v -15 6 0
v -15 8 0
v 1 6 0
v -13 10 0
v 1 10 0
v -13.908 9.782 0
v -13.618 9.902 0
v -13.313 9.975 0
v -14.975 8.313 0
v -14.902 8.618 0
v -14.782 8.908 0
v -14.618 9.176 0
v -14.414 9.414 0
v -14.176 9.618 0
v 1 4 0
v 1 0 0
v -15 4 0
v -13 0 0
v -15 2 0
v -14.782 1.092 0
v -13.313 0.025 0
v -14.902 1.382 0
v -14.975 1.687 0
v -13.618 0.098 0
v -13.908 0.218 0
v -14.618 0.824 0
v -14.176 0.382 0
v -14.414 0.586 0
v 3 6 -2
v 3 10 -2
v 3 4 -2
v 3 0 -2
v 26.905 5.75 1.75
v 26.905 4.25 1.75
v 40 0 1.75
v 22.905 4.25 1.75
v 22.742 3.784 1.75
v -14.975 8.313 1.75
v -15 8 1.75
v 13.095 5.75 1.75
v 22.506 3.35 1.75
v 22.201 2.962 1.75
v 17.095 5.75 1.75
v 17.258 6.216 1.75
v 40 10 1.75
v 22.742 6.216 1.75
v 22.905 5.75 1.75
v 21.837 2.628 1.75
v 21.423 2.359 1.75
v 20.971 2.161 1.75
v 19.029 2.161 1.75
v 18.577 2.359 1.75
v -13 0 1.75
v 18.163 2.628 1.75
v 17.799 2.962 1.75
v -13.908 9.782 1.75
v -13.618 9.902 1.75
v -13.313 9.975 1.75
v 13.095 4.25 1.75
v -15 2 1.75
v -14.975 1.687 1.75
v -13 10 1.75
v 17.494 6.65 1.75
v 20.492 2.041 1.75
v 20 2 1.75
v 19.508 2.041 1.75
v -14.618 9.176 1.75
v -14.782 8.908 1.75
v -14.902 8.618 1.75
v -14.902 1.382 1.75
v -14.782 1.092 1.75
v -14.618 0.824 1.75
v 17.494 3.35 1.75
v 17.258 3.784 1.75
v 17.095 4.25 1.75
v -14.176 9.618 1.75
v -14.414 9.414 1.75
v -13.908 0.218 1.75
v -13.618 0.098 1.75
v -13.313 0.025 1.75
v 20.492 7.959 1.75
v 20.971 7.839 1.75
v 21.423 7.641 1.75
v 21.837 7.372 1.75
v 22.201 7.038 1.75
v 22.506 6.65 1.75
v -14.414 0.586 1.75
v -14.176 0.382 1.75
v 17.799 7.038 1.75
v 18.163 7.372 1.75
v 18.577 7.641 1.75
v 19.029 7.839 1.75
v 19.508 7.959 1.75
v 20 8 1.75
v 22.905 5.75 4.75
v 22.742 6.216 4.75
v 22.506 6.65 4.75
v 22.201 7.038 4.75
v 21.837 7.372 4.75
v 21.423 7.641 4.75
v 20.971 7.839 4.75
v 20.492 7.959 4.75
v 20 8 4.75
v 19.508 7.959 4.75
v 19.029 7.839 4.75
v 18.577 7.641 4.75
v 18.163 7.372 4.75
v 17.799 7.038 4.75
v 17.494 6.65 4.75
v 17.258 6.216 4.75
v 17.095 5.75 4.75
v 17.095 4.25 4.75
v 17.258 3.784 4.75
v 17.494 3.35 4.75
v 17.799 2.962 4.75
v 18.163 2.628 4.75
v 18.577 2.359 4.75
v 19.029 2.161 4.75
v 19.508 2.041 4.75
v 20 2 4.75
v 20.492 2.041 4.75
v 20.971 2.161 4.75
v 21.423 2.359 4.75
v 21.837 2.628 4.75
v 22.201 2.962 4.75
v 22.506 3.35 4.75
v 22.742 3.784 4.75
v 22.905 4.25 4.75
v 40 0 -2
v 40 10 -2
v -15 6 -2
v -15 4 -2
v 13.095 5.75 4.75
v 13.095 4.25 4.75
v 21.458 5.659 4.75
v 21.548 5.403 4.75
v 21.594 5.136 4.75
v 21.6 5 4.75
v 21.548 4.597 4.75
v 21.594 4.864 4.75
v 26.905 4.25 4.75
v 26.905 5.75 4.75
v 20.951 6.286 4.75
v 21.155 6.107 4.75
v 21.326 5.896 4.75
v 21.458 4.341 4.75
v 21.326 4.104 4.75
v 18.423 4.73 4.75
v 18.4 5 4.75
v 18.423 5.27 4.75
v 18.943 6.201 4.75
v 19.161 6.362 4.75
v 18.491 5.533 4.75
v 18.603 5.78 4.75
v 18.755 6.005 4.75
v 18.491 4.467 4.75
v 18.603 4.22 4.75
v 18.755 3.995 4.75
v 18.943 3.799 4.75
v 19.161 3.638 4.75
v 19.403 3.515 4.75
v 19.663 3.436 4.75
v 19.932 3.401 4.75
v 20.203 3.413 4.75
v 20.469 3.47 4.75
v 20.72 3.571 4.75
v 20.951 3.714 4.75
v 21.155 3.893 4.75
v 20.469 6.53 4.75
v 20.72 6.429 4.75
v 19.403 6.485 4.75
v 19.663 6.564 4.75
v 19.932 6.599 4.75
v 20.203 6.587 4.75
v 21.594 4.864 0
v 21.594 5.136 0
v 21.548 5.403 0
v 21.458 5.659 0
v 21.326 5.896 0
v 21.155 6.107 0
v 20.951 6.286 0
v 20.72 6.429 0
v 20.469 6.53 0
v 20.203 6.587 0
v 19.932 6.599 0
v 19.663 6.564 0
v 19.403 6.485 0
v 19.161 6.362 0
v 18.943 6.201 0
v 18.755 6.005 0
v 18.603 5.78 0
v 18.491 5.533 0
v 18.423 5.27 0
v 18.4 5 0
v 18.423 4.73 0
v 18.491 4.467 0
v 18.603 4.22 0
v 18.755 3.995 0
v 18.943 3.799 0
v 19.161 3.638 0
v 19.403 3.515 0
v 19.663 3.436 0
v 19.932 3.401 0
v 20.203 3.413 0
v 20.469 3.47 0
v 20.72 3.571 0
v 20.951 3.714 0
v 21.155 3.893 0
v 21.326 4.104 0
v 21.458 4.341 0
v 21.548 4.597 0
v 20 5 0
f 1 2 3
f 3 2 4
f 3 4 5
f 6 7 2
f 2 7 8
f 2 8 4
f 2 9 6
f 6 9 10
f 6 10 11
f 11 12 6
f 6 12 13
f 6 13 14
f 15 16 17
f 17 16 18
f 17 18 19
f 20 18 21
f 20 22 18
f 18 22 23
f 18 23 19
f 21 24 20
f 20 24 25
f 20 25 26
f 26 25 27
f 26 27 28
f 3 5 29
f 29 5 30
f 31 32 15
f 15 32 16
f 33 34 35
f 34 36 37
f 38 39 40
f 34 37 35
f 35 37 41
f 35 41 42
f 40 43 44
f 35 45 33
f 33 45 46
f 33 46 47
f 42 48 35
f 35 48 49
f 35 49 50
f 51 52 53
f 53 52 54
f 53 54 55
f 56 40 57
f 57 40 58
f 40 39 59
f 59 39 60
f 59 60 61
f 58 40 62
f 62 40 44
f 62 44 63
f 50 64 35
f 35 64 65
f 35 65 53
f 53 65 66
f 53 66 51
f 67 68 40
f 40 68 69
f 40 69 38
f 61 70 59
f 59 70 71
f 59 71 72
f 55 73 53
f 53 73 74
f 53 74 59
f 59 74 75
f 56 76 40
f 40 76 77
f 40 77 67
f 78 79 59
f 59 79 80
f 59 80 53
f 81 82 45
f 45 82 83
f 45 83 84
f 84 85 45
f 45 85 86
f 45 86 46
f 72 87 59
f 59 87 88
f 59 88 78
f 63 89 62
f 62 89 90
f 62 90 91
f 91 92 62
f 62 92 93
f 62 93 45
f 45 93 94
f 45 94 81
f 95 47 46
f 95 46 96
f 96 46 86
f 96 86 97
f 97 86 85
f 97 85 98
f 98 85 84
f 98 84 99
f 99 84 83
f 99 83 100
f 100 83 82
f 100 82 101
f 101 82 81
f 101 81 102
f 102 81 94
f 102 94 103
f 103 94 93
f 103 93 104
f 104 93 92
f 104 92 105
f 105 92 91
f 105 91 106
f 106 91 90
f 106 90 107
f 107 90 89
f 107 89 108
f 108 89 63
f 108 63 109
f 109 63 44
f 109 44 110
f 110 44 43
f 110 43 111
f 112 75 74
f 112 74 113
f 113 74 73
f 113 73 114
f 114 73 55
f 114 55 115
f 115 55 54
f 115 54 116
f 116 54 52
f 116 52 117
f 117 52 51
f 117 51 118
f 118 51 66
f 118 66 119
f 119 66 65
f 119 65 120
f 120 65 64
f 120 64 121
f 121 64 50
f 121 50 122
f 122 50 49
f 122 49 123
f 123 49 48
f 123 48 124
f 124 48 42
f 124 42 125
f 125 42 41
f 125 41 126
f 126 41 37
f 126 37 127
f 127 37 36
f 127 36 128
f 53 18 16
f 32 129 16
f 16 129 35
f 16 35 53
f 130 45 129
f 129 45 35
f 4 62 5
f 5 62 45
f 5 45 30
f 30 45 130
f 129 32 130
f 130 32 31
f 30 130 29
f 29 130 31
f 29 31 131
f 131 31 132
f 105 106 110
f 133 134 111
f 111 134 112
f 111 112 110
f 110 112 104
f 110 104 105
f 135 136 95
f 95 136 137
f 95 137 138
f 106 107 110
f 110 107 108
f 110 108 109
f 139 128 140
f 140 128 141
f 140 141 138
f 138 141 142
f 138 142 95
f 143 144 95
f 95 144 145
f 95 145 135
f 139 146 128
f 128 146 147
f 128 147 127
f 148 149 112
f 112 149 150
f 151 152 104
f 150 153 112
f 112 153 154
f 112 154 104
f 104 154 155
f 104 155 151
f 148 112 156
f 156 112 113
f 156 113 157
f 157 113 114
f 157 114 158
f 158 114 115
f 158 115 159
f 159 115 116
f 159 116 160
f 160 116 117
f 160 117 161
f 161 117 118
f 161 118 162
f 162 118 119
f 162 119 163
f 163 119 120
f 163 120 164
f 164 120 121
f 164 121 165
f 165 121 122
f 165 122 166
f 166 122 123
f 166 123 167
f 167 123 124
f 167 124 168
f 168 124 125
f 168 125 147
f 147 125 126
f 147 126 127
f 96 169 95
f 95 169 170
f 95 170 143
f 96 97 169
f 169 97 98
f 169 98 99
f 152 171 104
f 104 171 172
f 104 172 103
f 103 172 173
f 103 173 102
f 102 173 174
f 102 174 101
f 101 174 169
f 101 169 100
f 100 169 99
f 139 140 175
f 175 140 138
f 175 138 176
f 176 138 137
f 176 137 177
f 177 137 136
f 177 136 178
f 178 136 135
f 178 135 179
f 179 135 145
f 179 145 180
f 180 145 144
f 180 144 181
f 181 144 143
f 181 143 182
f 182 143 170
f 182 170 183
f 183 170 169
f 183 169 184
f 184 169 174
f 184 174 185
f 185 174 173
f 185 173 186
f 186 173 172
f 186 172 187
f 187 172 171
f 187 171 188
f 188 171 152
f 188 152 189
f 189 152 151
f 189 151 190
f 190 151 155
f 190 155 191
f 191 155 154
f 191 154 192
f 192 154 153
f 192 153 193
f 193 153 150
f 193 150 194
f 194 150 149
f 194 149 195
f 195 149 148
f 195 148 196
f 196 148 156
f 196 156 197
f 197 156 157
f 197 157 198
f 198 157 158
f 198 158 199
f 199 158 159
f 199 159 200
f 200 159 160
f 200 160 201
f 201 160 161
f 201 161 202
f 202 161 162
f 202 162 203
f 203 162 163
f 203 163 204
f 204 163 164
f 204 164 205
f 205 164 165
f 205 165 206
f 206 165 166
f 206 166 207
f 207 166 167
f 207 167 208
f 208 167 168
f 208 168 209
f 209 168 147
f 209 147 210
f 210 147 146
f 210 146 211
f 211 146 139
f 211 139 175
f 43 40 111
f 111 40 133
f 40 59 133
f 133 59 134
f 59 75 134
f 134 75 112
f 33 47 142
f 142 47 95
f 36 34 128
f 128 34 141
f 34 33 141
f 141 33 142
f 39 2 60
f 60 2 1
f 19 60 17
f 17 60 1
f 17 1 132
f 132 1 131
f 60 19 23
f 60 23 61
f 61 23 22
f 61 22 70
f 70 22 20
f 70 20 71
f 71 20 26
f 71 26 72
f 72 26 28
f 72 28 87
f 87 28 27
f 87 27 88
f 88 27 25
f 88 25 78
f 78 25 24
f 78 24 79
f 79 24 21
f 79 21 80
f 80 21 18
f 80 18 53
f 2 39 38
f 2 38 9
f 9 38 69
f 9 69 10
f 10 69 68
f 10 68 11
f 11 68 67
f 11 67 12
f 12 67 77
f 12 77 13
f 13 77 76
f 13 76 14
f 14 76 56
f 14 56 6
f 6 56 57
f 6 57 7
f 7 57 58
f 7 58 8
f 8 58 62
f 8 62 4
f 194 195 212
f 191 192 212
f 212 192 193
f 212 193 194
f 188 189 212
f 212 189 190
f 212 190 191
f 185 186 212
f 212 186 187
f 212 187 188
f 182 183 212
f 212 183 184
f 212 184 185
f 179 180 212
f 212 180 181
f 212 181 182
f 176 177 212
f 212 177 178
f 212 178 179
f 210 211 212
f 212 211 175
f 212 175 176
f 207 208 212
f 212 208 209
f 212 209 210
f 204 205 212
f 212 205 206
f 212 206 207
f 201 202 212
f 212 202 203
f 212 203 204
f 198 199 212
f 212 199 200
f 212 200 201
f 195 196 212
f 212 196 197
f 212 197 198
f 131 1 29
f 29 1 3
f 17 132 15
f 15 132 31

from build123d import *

# Parameters (mm, degrees)
SKETCH_1_W          = 40
SKETCH_1_H          = 10
EXTRUDE_1_DEPTH     = 1.75
SKETCH_3_W          = 4
SKETCH_3_H          = 10
EXTRUDE_3_DEPTH     = 2
SKETCH_4_W          = 15
SKETCH_4_H          = 1.5
SKETCH_4_W_2        = 3
SKETCH_4_H_2        = 3.5
EXTRUDE_4_DEPTH     = 2
CHAMFER_1_SIZE      = 1
SKETCH_6_R          = 3
SKETCH_6_R_2        = 1.6
EXTRUDE_5_DEPTH     = 3
SKETCH_7_W          = 1.75
SKETCH_7_H          = 10
EXTRUDE_6_DEPTH     = 10
SKETCH_8_W          = 4
SKETCH_8_H          = 1.5
EXTRUDE_7_DEPTH     = 3
SKETCH_9_W          = 33
SKETCH_9_H          = 10
EXTRUDE_8_DEPTH     = 2
CHAMFER_2_SIZE      = 3
SKETCH_10_W         = 1.75
SKETCH_10_H         = 10
EXTRUDE_9_DEPTH     = 5
FILLET_1_R          = 2
CUT_EXTRUDE_START   = -1.75
SKETCH_11_R         = 1.6
CUT_EXTRUDE_1_DEPTH = 1.75
SKETCH_12_W         = 18
SKETCH_12_H         = 2
EXTRUDE_10_DEPTH    = 2


# Some blends are built 0.0001 mm under size
with BuildPart() as part:
    # 草图1 → 凸台-拉伸1 (new body)
    with BuildSketch(Plane.XY):
        with Locations((20, 5)):
            Rectangle(SKETCH_1_W, SKETCH_1_H)
    extrude(amount=EXTRUDE_1_DEPTH)

    # 草图3 → 凸台-拉伸3 (add)
    with BuildSketch(Plane(origin=(0, 0, 0), x_dir=(-1, 0, 0), z_dir=(0, 0, -1))):
        with Locations((-38, 5)):
            Rectangle(SKETCH_3_W, SKETCH_3_H)
    extrude(amount=EXTRUDE_3_DEPTH)

    # 草图4 → 凸台-拉伸4 (add)
    with BuildSketch(Plane(origin=(0, 0, 0), x_dir=(-1, 0, 0), z_dir=(0, 0, -1))):
        with Locations((-28.5, 5.75)):
            Rectangle(SKETCH_4_W, SKETCH_4_H)
        with Locations((-28.5, 4.25)):
            Rectangle(SKETCH_4_W, SKETCH_4_H)
        with Locations((-19.5, 5.75)):
            Rectangle(SKETCH_4_W_2, SKETCH_4_H)
        with Locations((-19.5, 4.25)):
            Rectangle(SKETCH_4_W_2, SKETCH_4_H)
        with Locations((-19.5, 8.25)):
            Rectangle(SKETCH_4_W_2, SKETCH_4_H_2)
        with Locations((-19.5, 1.75)):
            Rectangle(SKETCH_4_W_2, SKETCH_4_H_2)
        with Locations((-10.5, 5.75)):
            Rectangle(SKETCH_4_W, SKETCH_4_H)
        with Locations((-10.5, 4.25)):
            Rectangle(SKETCH_4_W, SKETCH_4_H)
        with Locations((-1.5, 5.75)):
            Rectangle(SKETCH_4_W_2, SKETCH_4_H)
        with Locations((-1.5, 4.25)):
            Rectangle(SKETCH_4_W_2, SKETCH_4_H)
        with Locations((-1.5, 8.25)):
            Rectangle(SKETCH_4_W_2, SKETCH_4_H_2)
        with Locations((-1.5, 1.75)):
            Rectangle(SKETCH_4_W_2, SKETCH_4_H_2)
    extrude(amount=EXTRUDE_4_DEPTH)

    # 倒角1
    chamfer_1_edges = [part.edges().sort_by_distance(p)[0] for p in [
        (10.5, 3.5, 0),
        (28.5, 3.5, 0),
    ]]
    chamfer(chamfer_1_edges, length=CHAMFER_1_SIZE)
    chamfer_1_2_edges = [part.edges().sort_by_distance(p)[0] for p in [
        (10.5, 3.5, -2),
        (28.5, 3.5, -2),
    ]]
    chamfer(chamfer_1_2_edges, length=CHAMFER_1_SIZE - 0.0001)  # a hair under: the kernel refuses the full size

    # 草图6 → 凸台-拉伸5 (add)
    with BuildSketch(Plane.XY.offset(1.75)):
        with Locations(Location((20, 5, 0), (0, 0, 180))):
            Circle(SKETCH_6_R)
        with Locations((20, 5)):
            Circle(SKETCH_6_R_2, mode=Mode.SUBTRACT)
    extrude(amount=EXTRUDE_5_DEPTH)

    # 草图7 → 凸台-拉伸6 (add)
    with BuildSketch(Plane.ZY):
        with Locations((0.875, 5)):
            Rectangle(SKETCH_7_W, SKETCH_7_H)
    extrude(amount=EXTRUDE_6_DEPTH)

    # 草图8 → 凸台-拉伸7 (add)
    with BuildSketch(Plane.XY.offset(1.75)):
        with Locations((15.09526249, 5)):
            Rectangle(SKETCH_8_W, SKETCH_8_H)
        with Locations((24.90473751, 5)):
            Rectangle(SKETCH_8_W, SKETCH_8_H)
    extrude(amount=EXTRUDE_7_DEPTH)

    # 草图9 → 凸台-拉伸8 (add)
    with BuildSketch(Plane(origin=(0, 0, 0), x_dir=(-1, 0, 0), z_dir=(0, 0, -1))):
        with Locations((-19.5, 5)):
            Rectangle(SKETCH_9_W, SKETCH_9_H)
    extrude(amount=EXTRUDE_8_DEPTH)

    # 倒角2
    # the kernel refuses this chamfer: 3 mm, written as the material it takes off along each edge
    with BuildSketch(Plane(origin=(0, -7.715048964, -2), x_dir=(0.9996219169112968, 0, -0.027495876610586348), z_dir=(0, 1, 0))) as chamfer_2_piece_1_section:
        Polygon((CHAMFER_2_SIZE * 0.999621916911, -CHAMFER_2_SIZE * 0.0274958766106), (-CHAMFER_2_SIZE * 0.0274958766106, -CHAMFER_2_SIZE * 0.999621916911), (0, 0), align=None)
    chamfer_2_piece_1 = extrude(amount=25.430097928, mode=Mode.PRIVATE)
    chamfer_2_piece_1 = split(chamfer_2_piece_1, bisect_by=Plane(origin=(1.092091005, 5, 0), z_dir=(0, 0, -1)), keep=Keep.TOP, mode=Mode.PRIVATE)
    add(chamfer_2_piece_1, mode=Mode.SUBTRACT)

    # 草图10 → 凸台-拉伸9 (add)
    with BuildSketch(Plane.ZY.offset(10)):
        with Locations((0.875, 5)):
            Rectangle(SKETCH_10_W, SKETCH_10_H)
    extrude(amount=EXTRUDE_9_DEPTH)

    # 圆角1
    fillet_1_edges = [part.edges().sort_by_distance(p)[0] for p in [
        (-15, 10, 0.875),
        (-15, 0, 0.875),
    ]]
    fillet(fillet_1_edges, radius=FILLET_1_R)

    # 草图11 → 切除-拉伸1 (cut)
    with BuildSketch(Plane.XY.offset(1.75).offset(CUT_EXTRUDE_START)):
        with Locations(Location((20, 5, 0), (0, 0, 180))):
            Circle(SKETCH_11_R)
    extrude(amount=CUT_EXTRUDE_1_DEPTH, mode=Mode.SUBTRACT)

    # 草图12 → 凸台-拉伸10 (add)
    with BuildSketch(Plane(origin=(0, 0, 0), x_dir=(-1, 0, 0), z_dir=(0, 0, -1))):
        with Locations((6, 5)):
            Rectangle(SKETCH_12_W, SKETCH_12_H)
    extrude(amount=EXTRUDE_10_DEPTH)


solid = part.part
